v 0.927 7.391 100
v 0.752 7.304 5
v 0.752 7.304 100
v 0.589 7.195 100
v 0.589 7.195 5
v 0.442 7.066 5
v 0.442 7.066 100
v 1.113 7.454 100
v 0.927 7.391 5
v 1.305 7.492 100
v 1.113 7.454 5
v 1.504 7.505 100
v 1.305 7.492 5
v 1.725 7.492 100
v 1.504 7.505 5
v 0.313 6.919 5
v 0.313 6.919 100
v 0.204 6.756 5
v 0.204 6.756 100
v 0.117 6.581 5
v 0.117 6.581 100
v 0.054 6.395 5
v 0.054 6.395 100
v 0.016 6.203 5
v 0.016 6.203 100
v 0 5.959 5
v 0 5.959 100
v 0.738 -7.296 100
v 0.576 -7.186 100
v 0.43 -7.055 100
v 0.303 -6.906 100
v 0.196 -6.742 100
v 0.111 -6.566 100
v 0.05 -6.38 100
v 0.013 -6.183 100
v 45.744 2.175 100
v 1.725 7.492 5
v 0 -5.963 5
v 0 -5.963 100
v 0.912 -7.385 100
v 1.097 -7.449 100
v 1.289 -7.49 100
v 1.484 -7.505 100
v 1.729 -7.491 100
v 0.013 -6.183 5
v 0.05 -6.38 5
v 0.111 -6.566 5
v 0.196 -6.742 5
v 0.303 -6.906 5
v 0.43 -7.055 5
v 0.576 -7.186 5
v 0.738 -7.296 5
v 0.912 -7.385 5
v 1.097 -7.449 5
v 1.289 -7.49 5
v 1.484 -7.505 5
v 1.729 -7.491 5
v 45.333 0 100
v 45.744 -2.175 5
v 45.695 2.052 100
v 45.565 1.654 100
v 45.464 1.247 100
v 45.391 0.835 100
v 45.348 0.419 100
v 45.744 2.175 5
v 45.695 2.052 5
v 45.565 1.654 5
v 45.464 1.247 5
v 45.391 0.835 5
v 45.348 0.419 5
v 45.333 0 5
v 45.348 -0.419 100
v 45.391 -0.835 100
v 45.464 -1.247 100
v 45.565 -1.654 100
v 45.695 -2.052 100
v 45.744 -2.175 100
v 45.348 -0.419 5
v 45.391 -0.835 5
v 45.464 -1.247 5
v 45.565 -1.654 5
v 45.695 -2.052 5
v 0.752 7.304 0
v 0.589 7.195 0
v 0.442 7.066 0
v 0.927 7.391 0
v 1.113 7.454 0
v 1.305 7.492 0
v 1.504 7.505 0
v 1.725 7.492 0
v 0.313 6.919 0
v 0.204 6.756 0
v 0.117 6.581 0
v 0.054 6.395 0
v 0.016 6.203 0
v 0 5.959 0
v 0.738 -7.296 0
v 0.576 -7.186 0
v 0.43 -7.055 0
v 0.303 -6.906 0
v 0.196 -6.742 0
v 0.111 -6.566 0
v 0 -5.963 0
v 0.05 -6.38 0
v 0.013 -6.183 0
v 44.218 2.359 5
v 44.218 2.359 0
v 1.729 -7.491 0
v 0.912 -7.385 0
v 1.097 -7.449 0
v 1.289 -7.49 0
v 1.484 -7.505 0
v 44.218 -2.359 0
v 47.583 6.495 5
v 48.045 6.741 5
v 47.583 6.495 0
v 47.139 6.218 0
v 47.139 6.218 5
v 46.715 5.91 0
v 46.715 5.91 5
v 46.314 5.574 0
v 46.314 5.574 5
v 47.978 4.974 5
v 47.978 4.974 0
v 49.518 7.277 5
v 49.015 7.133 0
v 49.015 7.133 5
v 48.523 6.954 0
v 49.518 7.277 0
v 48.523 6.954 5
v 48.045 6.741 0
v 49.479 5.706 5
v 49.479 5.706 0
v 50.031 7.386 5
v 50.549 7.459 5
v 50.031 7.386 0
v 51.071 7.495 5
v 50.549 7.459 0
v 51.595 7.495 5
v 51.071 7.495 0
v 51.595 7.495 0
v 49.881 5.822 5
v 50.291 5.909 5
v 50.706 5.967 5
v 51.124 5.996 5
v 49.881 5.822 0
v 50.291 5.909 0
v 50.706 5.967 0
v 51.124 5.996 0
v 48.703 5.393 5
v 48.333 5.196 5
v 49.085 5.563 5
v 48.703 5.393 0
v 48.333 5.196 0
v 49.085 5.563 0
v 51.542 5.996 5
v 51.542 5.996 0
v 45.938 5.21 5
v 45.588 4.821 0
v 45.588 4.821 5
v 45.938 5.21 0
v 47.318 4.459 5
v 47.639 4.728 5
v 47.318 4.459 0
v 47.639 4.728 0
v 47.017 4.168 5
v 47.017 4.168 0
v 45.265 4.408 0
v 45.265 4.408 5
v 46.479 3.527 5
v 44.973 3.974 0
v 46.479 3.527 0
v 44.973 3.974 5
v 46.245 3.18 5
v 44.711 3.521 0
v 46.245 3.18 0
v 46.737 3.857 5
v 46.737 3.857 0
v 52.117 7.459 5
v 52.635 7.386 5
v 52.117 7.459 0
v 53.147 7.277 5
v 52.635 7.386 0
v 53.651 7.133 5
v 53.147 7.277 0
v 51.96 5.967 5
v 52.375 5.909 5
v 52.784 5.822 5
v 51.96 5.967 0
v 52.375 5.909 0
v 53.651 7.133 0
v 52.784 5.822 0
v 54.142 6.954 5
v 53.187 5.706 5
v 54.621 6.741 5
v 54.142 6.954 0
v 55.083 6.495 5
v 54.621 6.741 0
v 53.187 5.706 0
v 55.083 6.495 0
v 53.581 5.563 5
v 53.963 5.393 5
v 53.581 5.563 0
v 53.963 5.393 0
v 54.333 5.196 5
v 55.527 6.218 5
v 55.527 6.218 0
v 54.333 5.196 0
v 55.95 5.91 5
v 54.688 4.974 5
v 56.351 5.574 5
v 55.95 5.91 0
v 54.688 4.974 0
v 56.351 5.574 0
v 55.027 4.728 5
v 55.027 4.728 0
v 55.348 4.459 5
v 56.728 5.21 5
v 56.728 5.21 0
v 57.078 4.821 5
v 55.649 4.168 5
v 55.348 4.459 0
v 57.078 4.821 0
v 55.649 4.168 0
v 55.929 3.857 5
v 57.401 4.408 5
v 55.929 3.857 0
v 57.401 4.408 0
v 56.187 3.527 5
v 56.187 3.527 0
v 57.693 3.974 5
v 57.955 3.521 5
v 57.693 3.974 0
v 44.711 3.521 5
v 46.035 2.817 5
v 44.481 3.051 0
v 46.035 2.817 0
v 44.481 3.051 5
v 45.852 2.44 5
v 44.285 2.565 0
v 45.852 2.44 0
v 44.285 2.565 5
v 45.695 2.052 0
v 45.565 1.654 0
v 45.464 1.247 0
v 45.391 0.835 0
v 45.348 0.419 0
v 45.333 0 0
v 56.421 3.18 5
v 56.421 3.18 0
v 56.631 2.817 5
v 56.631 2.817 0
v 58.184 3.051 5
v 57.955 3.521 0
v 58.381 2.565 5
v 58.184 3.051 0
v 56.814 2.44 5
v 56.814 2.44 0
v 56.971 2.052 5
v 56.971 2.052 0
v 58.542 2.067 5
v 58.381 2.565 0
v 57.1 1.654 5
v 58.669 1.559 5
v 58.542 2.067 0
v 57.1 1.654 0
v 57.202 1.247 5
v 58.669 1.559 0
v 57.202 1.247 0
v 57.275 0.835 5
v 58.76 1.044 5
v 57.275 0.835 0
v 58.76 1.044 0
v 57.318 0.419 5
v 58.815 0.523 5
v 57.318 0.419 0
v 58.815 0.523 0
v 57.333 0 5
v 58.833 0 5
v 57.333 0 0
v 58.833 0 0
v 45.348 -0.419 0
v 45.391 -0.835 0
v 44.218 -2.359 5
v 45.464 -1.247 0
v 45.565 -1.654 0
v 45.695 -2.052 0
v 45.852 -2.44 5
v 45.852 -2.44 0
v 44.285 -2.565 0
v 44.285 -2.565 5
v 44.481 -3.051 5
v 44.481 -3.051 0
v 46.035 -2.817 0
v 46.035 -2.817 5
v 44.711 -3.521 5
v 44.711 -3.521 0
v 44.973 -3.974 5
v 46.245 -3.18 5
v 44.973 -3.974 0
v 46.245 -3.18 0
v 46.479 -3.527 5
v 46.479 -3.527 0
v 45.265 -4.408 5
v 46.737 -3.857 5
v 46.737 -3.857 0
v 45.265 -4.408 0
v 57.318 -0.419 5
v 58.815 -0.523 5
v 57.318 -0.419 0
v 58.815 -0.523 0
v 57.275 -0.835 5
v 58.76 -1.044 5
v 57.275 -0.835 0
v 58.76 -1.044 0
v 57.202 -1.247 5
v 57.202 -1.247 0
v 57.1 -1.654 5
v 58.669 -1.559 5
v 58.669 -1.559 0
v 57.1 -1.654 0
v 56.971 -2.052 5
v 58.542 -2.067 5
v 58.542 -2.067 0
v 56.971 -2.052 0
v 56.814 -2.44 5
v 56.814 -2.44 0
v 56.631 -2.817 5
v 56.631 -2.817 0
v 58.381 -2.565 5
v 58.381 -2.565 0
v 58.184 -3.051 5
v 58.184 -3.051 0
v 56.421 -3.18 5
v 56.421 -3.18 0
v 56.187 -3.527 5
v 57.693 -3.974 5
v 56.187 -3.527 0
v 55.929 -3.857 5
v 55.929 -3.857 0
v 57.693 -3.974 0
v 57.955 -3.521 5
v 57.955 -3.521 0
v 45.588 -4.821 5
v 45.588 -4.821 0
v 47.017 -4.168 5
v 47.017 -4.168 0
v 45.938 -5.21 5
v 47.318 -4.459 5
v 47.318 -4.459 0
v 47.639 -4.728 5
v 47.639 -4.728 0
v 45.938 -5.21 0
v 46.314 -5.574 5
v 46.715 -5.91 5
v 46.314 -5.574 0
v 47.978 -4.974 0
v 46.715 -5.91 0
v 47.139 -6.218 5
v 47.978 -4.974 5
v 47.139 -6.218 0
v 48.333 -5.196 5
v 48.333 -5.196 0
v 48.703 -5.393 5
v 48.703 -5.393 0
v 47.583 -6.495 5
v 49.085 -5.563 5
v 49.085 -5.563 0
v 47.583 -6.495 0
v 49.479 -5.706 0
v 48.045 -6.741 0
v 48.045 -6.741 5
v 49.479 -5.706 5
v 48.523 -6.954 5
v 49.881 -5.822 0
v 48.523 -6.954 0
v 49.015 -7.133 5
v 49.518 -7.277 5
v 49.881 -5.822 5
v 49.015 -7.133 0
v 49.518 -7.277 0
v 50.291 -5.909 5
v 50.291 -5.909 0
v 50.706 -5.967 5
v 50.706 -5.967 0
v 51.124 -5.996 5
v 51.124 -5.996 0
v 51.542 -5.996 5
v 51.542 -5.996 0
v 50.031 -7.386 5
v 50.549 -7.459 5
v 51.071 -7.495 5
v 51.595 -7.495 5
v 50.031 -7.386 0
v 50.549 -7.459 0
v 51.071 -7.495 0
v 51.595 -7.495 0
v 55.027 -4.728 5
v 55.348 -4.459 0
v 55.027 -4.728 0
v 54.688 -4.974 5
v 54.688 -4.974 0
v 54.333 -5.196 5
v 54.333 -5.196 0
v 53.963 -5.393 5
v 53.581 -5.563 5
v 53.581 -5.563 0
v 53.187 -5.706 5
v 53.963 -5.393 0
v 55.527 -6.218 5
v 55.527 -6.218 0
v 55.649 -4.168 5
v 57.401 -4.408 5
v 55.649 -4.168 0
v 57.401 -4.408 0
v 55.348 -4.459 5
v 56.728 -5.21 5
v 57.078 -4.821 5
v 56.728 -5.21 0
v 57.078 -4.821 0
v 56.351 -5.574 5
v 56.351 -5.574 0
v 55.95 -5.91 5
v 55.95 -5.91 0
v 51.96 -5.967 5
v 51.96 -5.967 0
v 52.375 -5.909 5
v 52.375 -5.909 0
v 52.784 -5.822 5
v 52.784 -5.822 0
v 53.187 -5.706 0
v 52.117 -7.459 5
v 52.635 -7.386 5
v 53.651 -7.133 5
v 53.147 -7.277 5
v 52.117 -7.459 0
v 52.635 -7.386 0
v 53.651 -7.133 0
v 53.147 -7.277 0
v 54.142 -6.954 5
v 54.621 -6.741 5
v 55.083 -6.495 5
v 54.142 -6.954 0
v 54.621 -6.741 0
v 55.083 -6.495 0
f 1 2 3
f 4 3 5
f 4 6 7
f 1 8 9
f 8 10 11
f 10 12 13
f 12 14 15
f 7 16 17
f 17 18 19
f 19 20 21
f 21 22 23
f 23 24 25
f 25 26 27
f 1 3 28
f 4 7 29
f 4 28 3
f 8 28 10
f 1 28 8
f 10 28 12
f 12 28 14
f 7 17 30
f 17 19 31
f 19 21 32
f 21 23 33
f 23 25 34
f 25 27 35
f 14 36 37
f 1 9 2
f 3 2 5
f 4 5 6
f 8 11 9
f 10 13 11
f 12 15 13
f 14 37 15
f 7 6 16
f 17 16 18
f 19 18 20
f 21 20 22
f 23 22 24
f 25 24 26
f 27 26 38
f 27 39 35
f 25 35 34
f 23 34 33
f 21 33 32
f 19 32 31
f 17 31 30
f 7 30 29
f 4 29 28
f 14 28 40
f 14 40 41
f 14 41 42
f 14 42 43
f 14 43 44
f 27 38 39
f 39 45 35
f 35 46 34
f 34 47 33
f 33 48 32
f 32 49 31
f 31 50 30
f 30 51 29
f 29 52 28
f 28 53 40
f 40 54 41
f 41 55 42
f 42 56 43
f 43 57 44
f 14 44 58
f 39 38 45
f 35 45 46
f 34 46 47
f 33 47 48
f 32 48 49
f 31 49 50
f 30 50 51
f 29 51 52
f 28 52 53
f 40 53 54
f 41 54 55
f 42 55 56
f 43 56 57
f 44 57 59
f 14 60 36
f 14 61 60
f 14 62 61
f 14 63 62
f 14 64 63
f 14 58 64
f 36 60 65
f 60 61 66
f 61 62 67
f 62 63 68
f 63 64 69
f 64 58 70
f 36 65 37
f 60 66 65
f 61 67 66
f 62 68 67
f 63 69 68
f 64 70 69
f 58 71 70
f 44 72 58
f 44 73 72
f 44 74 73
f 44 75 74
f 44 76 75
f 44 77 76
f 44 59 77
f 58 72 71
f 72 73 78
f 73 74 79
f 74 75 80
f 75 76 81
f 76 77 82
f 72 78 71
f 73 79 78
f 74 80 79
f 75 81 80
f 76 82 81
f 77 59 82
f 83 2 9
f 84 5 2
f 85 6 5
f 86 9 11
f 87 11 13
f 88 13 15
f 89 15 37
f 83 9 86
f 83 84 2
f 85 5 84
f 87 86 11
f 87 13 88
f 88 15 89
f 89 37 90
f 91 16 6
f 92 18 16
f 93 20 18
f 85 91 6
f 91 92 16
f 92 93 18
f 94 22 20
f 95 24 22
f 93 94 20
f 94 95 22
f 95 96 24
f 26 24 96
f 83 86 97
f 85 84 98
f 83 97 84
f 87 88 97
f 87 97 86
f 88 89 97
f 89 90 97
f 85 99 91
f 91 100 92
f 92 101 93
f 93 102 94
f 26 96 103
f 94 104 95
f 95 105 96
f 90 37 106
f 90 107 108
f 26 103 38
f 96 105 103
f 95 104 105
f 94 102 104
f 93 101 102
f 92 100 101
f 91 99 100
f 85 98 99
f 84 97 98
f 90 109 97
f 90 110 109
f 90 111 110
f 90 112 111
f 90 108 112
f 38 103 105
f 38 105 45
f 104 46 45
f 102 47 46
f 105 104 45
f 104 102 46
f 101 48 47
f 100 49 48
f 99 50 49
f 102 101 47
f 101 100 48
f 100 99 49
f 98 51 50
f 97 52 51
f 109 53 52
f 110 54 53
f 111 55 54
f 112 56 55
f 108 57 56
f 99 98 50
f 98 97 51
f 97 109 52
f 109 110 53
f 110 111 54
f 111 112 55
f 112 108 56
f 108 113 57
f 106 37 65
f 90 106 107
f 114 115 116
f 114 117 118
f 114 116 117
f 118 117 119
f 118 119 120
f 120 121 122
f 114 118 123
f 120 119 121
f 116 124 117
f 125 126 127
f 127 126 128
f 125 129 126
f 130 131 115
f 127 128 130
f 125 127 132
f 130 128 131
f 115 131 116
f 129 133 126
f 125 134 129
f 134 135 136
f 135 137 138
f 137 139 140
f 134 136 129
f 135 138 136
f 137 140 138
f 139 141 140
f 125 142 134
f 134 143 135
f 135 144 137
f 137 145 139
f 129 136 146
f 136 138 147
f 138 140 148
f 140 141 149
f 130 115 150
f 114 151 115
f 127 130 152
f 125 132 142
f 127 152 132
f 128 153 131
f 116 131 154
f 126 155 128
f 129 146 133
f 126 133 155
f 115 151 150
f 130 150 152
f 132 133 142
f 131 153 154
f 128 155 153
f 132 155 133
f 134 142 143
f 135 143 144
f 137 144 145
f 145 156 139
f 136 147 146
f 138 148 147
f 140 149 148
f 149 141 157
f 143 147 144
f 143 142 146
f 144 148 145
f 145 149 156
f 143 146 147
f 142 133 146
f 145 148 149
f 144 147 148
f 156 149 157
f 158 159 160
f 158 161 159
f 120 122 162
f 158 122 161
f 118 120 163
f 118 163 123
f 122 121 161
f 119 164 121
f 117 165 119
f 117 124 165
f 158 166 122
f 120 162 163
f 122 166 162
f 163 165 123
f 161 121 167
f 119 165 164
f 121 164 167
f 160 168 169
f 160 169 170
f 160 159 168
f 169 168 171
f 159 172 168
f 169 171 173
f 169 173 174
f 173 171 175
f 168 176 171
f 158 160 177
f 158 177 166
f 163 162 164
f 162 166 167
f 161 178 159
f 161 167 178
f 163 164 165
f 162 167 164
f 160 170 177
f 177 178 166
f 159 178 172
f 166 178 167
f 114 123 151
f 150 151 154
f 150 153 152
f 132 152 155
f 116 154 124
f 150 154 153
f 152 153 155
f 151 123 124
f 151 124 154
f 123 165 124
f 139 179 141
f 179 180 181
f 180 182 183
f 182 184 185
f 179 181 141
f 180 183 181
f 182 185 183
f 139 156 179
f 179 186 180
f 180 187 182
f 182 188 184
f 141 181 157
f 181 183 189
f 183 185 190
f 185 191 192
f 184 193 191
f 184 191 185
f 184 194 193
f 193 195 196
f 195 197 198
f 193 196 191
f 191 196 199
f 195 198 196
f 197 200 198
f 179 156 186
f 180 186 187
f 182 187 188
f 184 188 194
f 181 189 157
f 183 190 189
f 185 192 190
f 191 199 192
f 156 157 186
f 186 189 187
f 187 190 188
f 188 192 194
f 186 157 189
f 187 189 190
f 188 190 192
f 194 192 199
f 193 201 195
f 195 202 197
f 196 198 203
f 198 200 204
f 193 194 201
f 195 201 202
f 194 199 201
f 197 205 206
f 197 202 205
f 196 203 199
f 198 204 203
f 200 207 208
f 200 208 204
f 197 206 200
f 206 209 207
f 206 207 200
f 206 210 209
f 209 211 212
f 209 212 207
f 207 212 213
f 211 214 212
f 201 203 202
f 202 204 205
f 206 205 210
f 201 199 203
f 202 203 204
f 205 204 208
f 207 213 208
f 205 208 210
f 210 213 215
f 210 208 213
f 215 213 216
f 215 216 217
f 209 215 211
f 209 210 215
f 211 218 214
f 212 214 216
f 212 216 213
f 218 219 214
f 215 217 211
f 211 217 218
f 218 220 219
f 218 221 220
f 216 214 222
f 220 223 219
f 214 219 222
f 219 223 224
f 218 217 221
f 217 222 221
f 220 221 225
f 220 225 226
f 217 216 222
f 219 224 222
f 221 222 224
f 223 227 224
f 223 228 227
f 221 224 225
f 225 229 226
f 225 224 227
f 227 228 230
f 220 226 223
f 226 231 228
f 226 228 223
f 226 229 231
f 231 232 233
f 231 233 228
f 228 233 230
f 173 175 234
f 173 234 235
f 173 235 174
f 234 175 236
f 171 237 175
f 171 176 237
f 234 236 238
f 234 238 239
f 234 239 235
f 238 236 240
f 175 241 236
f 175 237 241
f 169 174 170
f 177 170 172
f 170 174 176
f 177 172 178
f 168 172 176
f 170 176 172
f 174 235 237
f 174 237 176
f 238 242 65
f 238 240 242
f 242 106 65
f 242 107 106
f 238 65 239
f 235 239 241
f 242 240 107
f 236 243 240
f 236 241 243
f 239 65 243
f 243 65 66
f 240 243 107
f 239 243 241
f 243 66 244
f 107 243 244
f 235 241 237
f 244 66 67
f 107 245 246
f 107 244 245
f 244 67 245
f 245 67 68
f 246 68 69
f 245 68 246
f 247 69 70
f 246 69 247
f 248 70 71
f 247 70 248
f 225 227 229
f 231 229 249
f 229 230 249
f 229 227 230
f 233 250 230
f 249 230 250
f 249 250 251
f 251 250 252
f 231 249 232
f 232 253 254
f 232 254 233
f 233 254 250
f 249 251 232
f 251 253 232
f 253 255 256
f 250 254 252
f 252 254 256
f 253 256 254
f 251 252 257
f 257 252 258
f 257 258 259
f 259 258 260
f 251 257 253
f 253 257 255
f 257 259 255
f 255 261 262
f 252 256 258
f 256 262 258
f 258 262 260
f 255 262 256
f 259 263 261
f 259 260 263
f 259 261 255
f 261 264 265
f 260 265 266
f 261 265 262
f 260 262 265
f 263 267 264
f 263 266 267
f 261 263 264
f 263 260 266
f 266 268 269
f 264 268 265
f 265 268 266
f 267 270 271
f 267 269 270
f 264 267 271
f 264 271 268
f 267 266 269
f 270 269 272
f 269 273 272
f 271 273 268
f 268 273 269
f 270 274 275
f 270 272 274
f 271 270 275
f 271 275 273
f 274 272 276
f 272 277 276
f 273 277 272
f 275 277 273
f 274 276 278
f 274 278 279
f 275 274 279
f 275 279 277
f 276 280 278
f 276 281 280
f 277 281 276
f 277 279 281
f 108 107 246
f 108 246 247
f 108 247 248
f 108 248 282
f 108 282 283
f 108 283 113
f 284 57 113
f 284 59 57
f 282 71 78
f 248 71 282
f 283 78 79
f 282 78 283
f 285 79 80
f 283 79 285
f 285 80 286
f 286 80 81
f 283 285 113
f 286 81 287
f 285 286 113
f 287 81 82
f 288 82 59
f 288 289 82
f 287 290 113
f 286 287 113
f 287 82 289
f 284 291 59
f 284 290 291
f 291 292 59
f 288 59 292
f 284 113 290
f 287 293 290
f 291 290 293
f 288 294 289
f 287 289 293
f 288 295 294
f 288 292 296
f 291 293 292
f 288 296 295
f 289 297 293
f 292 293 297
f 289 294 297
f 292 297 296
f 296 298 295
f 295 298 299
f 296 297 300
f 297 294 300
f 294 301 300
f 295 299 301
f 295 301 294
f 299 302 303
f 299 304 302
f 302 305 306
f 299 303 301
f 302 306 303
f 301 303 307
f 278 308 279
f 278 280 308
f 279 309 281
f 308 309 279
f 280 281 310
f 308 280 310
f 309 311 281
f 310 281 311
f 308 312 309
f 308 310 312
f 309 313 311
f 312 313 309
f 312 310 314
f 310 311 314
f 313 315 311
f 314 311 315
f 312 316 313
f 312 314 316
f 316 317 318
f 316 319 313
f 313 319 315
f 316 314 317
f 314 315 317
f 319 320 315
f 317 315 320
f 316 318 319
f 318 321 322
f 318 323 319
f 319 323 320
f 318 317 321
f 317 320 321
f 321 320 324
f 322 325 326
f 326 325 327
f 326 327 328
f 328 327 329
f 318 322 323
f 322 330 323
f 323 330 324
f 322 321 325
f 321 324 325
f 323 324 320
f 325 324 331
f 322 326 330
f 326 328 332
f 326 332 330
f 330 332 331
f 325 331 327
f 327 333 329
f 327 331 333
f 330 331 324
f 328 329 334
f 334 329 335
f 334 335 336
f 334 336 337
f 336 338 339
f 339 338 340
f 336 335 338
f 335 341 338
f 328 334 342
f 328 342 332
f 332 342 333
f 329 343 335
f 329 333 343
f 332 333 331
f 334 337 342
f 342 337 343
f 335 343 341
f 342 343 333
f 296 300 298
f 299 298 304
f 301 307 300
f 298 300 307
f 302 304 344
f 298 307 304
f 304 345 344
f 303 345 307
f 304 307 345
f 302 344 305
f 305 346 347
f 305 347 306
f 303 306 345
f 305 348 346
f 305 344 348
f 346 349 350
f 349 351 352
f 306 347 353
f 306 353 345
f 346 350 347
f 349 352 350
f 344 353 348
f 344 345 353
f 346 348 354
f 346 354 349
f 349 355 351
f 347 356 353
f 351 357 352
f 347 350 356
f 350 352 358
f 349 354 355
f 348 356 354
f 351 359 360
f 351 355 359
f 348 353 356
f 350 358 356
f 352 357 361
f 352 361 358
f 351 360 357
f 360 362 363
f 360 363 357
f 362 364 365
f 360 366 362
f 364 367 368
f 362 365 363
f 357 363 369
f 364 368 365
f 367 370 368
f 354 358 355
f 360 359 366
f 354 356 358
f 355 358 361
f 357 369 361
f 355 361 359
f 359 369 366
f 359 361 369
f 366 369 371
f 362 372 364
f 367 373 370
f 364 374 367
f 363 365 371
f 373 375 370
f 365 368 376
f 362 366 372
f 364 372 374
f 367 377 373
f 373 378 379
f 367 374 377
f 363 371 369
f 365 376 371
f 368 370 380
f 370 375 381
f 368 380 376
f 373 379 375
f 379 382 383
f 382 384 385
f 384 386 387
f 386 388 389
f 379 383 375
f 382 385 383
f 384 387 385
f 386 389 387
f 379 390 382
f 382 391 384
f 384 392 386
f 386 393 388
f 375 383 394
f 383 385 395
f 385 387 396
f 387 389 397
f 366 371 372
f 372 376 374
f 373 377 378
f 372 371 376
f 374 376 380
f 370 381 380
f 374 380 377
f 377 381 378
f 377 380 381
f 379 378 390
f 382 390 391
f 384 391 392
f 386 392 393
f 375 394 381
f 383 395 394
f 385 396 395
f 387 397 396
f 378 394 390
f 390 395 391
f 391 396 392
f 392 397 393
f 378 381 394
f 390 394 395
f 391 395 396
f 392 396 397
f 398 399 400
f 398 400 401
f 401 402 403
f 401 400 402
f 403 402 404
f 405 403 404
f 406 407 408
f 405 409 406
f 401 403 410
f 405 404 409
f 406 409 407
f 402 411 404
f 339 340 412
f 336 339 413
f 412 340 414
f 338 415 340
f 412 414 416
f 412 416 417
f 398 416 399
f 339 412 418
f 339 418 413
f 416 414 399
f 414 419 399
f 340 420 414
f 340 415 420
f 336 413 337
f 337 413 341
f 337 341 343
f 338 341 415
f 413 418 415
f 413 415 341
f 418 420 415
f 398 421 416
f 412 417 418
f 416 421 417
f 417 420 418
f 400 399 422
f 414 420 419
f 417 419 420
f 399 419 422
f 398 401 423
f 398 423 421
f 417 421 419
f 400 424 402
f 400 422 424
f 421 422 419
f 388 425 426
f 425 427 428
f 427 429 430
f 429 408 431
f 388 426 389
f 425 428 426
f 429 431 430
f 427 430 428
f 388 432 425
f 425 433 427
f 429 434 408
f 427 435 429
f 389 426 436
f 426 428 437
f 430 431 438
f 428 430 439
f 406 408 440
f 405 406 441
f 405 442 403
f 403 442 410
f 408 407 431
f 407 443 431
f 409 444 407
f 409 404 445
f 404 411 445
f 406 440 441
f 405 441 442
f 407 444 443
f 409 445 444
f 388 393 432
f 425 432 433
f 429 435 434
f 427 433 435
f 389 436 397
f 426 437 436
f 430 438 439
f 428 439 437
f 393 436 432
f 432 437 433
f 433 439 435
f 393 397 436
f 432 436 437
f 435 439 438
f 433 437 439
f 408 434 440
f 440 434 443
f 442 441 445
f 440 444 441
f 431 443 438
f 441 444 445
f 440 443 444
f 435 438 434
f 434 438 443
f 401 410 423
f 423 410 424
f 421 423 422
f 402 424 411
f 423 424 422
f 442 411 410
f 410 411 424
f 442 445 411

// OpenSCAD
// Note 1.

/* [Output] */

// Note 2.

/* [Assembly display] */
// Note 3.
view = "default"; // [default, together, exploded]

show = "part";   // [part, coupon]
// Note 4.

flip = true;
// Note 5.
coupon_h = 20.0;

$fa = 4;   // Note 6.
$fs = 0.4;
eps = 0.01;

/* [Wedge] */

// Note 7.
wedge_height = 100.0;
// Note 8.

wedge_depth = 51.3329;
// Note 9.

back_thick = 15.4;
// Note 10.

front_thick = 3.0;
// Note 11.

edge_r = 1.5;

/* [Door — measured and fitted] */

// Note 12.
door_width_in = 30;
// Note 13.

door_corner = 43.0;
// Note 14.

slot_closed = 4.8;

/* [Knob] */

// Note 15.
knob_d = 15.0;
// Note 16.

knob_offset = 0.0;
// Note 17.
bore_d = 12.0;
// Note 18.

bore_comp = 0.0;
// Note 19.

ring_h = 5.0;

/* [Derived — do not edit] */

half_back = back_thick / 2;
half_front = front_thick / 2;
knob_r = knob_d / 2;
bore_r = (bore_d + bore_comp) / 2;
knob_x = wedge_depth + knob_offset;
facet_len = sqrt(wedge_depth * wedge_depth + pow(half_back - half_front, 2));
taper_angle = 2 * atan((half_back - half_front) / wedge_depth);
// Note 20.
function half_width(s) = half_front + (half_back - half_front) * s / wedge_depth;
// Note 21.

slope = (half_back - half_front) / wedge_depth;
mouth_s = (-2 * half_front * slope
           + sqrt(pow(2 * half_front * slope, 2)
                  - 4 * (1 + slope * slope) * (half_front * half_front - bore_r * bore_r)))
          / (2 * (1 + slope * slope));
// Note 22.

stop_rad = max([for (s = [8 : 1 : door_corner]) (2 * half_width(s) - slot_closed) / s]);

// Note 23.

module round_all(rr) {
  if (rr > 0) offset(r = -rr) offset(r = 2 * rr) offset(r = -rr) children();
  else children();
}

module wedge_trapezoid() {
  polygon([
    [0, -half_back],                // Note 24.
    [wedge_depth, -half_front],     // Note 25.
    [wedge_depth, half_front],
    [0, half_back],                 // Note 26.
  ]);
}

module wedge_rounded() {
  round_all(edge_r) wedge_trapezoid();
}

// Note 27.

module lower_profile() {
  difference() {
    wedge_rounded();
    translate([knob_x, 0]) circle(r = bore_r);
  }
}

// Note 28.

module upper_profile() {
  difference() {
    union() {
      wedge_rounded();
      translate([knob_x, 0]) circle(r = knob_r);
    }
    translate([knob_x, 0]) circle(r = bore_r);
  }
}

// Note 29.

module cat_gap_wedge() {
  linear_extrude(height = wedge_height - ring_h, convexity = 6)
    lower_profile();
  translate([0, 0, wedge_height - ring_h])
    linear_extrude(height = ring_h, convexity = 6)
      upper_profile();
}

// Note 30.

module cat_gap_wedge_oriented() {
  if (flip) translate([0, 0, wedge_height]) rotate([180, 0, 0]) cat_gap_wedge();
  else cat_gap_wedge();
}

echo(str("depth, far face to the pin = ", wedge_depth, " mm"));
echo(str("overall depth = ", wedge_depth + knob_offset + knob_r, " mm"));
echo(str("taper angle = ", taper_angle, " deg"));
echo(str("width at the door's corner (", door_corner, " mm) = ", 2 * half_width(door_corner), " mm"));
echo(str("predicted crack on a ", door_width_in, " in door = ", door_width_in * stop_rad, " in"));
echo(str("  ... and per extra mm on the far face = ", door_width_in * (door_corner / wedge_depth) / door_corner, " in"));
echo(str("neck where the wedge meets the ring's outside = ", 2 * half_width(knob_r), " mm"));
echo(str("channel floor = ", knob_x - bore_r, " mm from the far face"));
echo(str("channel mouth = ", knob_x - mouth_s, " mm from the far face, tips ", half_width(mouth_s), " mm off axis"));
echo(str("wall around the bore = ", knob_r - bore_r, " mm"));
echo(str("ring from z = ", wedge_height - ring_h, " to ", wedge_height, " mm"));

// Note 31.

module feral_default_output_ed66b086102d() {
if (show == "coupon") {
  intersection() {
    cat_gap_wedge_oriented();
    translate([-80, -80, 0]) cube([300, 160, coupon_h]);
  }
} else {
  cat_gap_wedge_oriented();
}
}

module feral_assembly_view_ed66b086102d(explode=false) {
feral_default_output_ed66b086102d();
}

assert(view == "default" || view == "together" || view == "exploded", "Unknown assembly display");
if(view == "default") feral_default_output_ed66b086102d();
else feral_assembly_view_ed66b086102d(view == "exploded");

// Notes

// Note 1. Cat gap wedge — holds the laundry/litter room door open a cat's width.
//
// This file is the WEDGE BODY ONLY. The hook is the ring, and it is part of
// this file; nothing else is needed to hang it.
//
// HOW IT INSTALLS. The ring drops over the TOP HINGE PIN, on the inside of the
// jamb, and the wedge hangs down from it into the gap between the door's hinge
// stile and the jamb. The door closes onto the taper and cannot go past, which
// leaves the latch edge cracked open for the cats. Ziad, 2026-09-11.
//
// SO THE RING END IS THE BACK, as you install it: the ring is at the hinge and
// the far face points out into the opening. It does not bear on anything; it
// is simply the far end.
//
// THE HINGE, measured by Ziad 2026-09-12. The barrel is about 12 mm across and
// stands outside the door face; the stack is 90 mm tall. On top of it sits a
// two-sided hinge-pin door stop 7 mm tall, then a 1 mm rubber grommet and a
// 1 mm pin head. The ring loops those last 2 mm and rests on the door stop, so
// its top 3 mm have nothing but air inside. Below the ring the channel runs
// down beside the door stop and then the barrel.
//
// THE FORM. A truncated wedge standing on end: 100 mm tall, a 15.4 mm flat
// face at the far end tapering to a 3 mm nose ON the pin, and a 15 mm bored
// ring around the pin for the top 5 mm.
//
// depth        51.333 mm   far face to the pin
// taper angle  13.77 deg   2 * atan(6.2 / 51.333)
// overall      58.833 mm   depth + knob_r
//
// WHAT SETS THE GAP. The door binds where the wedge is widest along the door's
// edge — the door's inside corner, about 43 mm from the pin (a 12 mm barrel
// outside the face, a 35 mm door) — and only by however much the wedge is
// wider there than the slot already is with the door closed:
//
// crack  ~  W * (width at the corner - closed slot) / 43
//
// with W the door's width. The slot has not been measured; it is FITTED. The
// first coupon, an 11 mm face on a point nose, stopped a 30 in door at just
// over 3 in, which puts the slot at about 4.8 mm. On that fit 1 mm more on
// the far face is about 0.6 in more at the latch, and 15.4 predicts 6 in.
// Treat the prediction as a first cut and the 0.6 in/mm as the correction,
// and if it lands far off, measure the slot instead of fitting it again.
//
// THE FIRST TWO GUESSES WERE WRONG THE SAME WAY. An 18 mm face on a 5 mm nose
// jammed on the nose. The fix, "call it 11 mm" on a point nose so that t/r
// was constant along the facets, assumed the closed slot was zero and that
// the door touched the wedge all the way in to the pin. Neither is true: the
// slot is ~5 mm and the door's edge starts ~8 mm out from the pin, so the
// point nose never touched anything, the far corner did all the work, and a
// predicted 6.39 in came out as 3.
//
// THE NOSE IS 3 mm FOR THE RING JOINT, not for the door. In TPU the point
// nose met the ring across 1.8 mm, which is a live hinge. 3 mm at the pin is
// 4.8 mm where the wedge meets the ring's outside, and at 8 mm out — the
// door's face corner — the wedge is 4.9 mm against a slot of 4.8 plus whatever
// the door has opened, so it clears there and binds at the far corner as
// intended. Do not raise it past 4 without measuring the slot; that is the
// 18 mm mistake again.
//
// THE BORE IS THE MOUNT, and it is vertical in use. Modelled ring-up, the bore
// runs down the part's height, so hanging on the door it is a vertical hole
// that drops straight over the pin head from above and rests on the door stop.
//
// THE RING EXISTS ONLY IN THE TOP 5 mm; BELOW IT, THE BORE CARRIES ON. Above
// z = 95 the 15 mm knob is added and bored 12. Below, the knob is simply gone
// — not subtracted, absent — and the 12 mm bore continues down as a cut, so
// the channel wall is the very same cylinder as the inside of the ring and
// runs flush with it. Ziad: "delete the ring but leave the overlap."
//
// channel floor  45.333 mm from the far face
// channel mouth  45.741 mm, where the arc meets each facet
// mouth tips     2.175 mm off the axis, so a 4.35 mm nose at the mouth
//
// The channel is drawn at the barrel's 12 mm. The coupon went on, so it
// clears, but it is not a measured clearance.
//
// EVERY VERTICAL EDGE IS ROUNDED at edge_r = 1.5 mm. With a 3 mm nose the
// opening rounds its two corners into nearly a full round and pulls nothing
// back. The point nose it replaced lost 14 mm to the same opening and was
// SEVERED from the ring, which genus did not catch: a wedge is genus 0 and a
// ring is genus 1, so the sum read 1 either way. Count connected components
// in the mesh after any change to the nose; that is the check that caught it.
//
// THE BORE IS DRAWN NOMINAL. This machine loses 0.55-0.65 mm on a small bore
// by measurement, so put that back with bore_comp before trusting the fit on
// a real pin.
//
// ⚠️ THE RING WALL IS 1.5 mm, which is 3.57 passes of a 0.42 line and off the
// wall ladder. 1.26 (3 passes) and 1.68 (4) are the neighbours: knob_d 15.36
// holds the 12 mm bore, bore_d 11.64 holds the 15 mm knob. Ziad's call, so it
// builds 12-in-15 as asked.
//
// ORIENTATION. Modelled ring-up, which is how it hangs. It is BUILT ring-down
// — flip = true rotates it 180 about X before output — and that is how to
// print it: the channel is a vertical slot, the bore a vertical hole, and the
// ring's flat underside sits on the plate instead of bridging open air at
// z = 95. Going up from the ring the section only loses material, which is a
// ledge, not an overhang. It is a 100 mm tower on a 58.8 x 15.4 footprint, so
// run a brim.

// Note 2. "coupon" is the bottom coupon_h of the printed orientation — the ring and
// the start of the channel — for checking the fit, the bore, and the door
// angle without printing 100 mm. Build it with --name cat-gap-wedge-coupon.

// Note 3. default preserves the original part, coupon and print selectors.

// Note 4. Print the part ring-down. The ring is modelled at the top because that is
// where it belongs on the door; it is printed at the bottom because that is
// the only way the ring's underside is not a bridge.

// Note 5. Height of the coupon, measured from the bottom of the printed orientation.

// Note 6. organic faceting per the 0.4-nozzle rule; no global high $fn

// Note 7. Height standing on end (mm). The dimension along the door's edge.

// Note 8. Distance from the far face to the ring's axis, which is the pin (mm).
// 51.3329 is the original 31.3329 plus the 20 Ziad asked for on 2026-09-11.

// Note 9. Thickness of the far face, the end away from the hinge (mm). THIS is the
// lever for the door angle: about 0.6 in at the latch per mm, see WHAT SETS
// THE GAP. 11 gave 3 in; 15.4 is the 6 in prediction.

// Note 10. Thickness of the nose, on the pin (mm). Set for the ring joint, bounded by
// the closed slot — see THE NOSE IS 3 mm. 0 makes it a point.

// Note 11. Radius on every vertical edge (mm). Rounds convex and concave corners alike.
// 0 leaves them all sharp.

// Note 12. Width of the door (in). Only used for the predicted crack.

// Note 13. Distance from the pin to the door's inside corner, where it binds (mm).
// 12 mm barrel outside the face plus a 1-3/8 in door. Estimated, not measured.

// Note 14. Gap between the door's hinge edge and the jamb with the door closed (mm).
// FITTED from the 3 in coupon result, not measured.

// Note 15. Diameter of the cylinder running down the front edge (mm).

// Note 16. Position of the knob's axis, measured forward from the nose (mm). 0 centres
// it on the nose.

// Note 17. Diameter of the bore down the knob's axis (mm). 0 leaves it solid.

// Note 18. Added to bore_d to cover this machine's bore shrinkage (mm). Left at 0 the
// hole is drawn at its nominal size.

// Note 19. Height of cylinder kept at the very top as a ring (mm). The rest of it is
// subtracted from the wedge and becomes the channel.

// Note 20. Half-width of the wedge at s mm from the pin, towards the far face.

// Note 21. Where the bore's arc meets each facet, as a distance from the pin: solve
// s^2 + half_width(s)^2 = bore_r^2 for s.

// Note 22. The door stops where the wedge outgrows the slot by the most per mm of
// reach. That is the far corner unless the nose is fatter than the slot.

// Note 23. Round every corner of a 2D profile by rr without moving the flats: open by
// rr (erode, dilate — rounds the convex corners), then close by rr (dilate,
// erode — rounds the concave ones). The two dilations merge into one, which is
// why the middle offset is 2 * rr. Arcs already larger than rr come through
// untouched, so the channel and the bore are unaffected.

// Note 24. far face, right side

// Note 25. the nose, on the pin

// Note 26. far face, left side

// Note 27. Below the ring: the wedge with the channel scooped out of its nose. The cut
// is the BORE, not the knob — below the top course the ring itself is simply
// not there, and what continues down is the hole through it. So the channel
// wall is the same cylinder as the inside of the ring and runs flush with it,
// rather than standing knob_r - bore_r = 1.5 mm proud of it.

// Note 28. The ring course. Rounded BEFORE the bore is cut, because the ring wall is
// only 1.5 mm and an erode of edge_r would delete it outright.

// Note 29. Two constant sections stacked, rather than one extrude cut by a cylinder.
// Each course is a plain 2D profile, so the rounding is a 2D offset and the
// knob's r = 7.5 surface is never both added and subtracted over the same z.

// Note 30. Printed orientation. The flip is a rotate, not a mirror — the part is
// symmetric about y = 0, so nothing is handed either way.

// Note 31. Assembly display changes placement only; the original output remains the default.
// Single printed piece: both display modes show the same intact part.
